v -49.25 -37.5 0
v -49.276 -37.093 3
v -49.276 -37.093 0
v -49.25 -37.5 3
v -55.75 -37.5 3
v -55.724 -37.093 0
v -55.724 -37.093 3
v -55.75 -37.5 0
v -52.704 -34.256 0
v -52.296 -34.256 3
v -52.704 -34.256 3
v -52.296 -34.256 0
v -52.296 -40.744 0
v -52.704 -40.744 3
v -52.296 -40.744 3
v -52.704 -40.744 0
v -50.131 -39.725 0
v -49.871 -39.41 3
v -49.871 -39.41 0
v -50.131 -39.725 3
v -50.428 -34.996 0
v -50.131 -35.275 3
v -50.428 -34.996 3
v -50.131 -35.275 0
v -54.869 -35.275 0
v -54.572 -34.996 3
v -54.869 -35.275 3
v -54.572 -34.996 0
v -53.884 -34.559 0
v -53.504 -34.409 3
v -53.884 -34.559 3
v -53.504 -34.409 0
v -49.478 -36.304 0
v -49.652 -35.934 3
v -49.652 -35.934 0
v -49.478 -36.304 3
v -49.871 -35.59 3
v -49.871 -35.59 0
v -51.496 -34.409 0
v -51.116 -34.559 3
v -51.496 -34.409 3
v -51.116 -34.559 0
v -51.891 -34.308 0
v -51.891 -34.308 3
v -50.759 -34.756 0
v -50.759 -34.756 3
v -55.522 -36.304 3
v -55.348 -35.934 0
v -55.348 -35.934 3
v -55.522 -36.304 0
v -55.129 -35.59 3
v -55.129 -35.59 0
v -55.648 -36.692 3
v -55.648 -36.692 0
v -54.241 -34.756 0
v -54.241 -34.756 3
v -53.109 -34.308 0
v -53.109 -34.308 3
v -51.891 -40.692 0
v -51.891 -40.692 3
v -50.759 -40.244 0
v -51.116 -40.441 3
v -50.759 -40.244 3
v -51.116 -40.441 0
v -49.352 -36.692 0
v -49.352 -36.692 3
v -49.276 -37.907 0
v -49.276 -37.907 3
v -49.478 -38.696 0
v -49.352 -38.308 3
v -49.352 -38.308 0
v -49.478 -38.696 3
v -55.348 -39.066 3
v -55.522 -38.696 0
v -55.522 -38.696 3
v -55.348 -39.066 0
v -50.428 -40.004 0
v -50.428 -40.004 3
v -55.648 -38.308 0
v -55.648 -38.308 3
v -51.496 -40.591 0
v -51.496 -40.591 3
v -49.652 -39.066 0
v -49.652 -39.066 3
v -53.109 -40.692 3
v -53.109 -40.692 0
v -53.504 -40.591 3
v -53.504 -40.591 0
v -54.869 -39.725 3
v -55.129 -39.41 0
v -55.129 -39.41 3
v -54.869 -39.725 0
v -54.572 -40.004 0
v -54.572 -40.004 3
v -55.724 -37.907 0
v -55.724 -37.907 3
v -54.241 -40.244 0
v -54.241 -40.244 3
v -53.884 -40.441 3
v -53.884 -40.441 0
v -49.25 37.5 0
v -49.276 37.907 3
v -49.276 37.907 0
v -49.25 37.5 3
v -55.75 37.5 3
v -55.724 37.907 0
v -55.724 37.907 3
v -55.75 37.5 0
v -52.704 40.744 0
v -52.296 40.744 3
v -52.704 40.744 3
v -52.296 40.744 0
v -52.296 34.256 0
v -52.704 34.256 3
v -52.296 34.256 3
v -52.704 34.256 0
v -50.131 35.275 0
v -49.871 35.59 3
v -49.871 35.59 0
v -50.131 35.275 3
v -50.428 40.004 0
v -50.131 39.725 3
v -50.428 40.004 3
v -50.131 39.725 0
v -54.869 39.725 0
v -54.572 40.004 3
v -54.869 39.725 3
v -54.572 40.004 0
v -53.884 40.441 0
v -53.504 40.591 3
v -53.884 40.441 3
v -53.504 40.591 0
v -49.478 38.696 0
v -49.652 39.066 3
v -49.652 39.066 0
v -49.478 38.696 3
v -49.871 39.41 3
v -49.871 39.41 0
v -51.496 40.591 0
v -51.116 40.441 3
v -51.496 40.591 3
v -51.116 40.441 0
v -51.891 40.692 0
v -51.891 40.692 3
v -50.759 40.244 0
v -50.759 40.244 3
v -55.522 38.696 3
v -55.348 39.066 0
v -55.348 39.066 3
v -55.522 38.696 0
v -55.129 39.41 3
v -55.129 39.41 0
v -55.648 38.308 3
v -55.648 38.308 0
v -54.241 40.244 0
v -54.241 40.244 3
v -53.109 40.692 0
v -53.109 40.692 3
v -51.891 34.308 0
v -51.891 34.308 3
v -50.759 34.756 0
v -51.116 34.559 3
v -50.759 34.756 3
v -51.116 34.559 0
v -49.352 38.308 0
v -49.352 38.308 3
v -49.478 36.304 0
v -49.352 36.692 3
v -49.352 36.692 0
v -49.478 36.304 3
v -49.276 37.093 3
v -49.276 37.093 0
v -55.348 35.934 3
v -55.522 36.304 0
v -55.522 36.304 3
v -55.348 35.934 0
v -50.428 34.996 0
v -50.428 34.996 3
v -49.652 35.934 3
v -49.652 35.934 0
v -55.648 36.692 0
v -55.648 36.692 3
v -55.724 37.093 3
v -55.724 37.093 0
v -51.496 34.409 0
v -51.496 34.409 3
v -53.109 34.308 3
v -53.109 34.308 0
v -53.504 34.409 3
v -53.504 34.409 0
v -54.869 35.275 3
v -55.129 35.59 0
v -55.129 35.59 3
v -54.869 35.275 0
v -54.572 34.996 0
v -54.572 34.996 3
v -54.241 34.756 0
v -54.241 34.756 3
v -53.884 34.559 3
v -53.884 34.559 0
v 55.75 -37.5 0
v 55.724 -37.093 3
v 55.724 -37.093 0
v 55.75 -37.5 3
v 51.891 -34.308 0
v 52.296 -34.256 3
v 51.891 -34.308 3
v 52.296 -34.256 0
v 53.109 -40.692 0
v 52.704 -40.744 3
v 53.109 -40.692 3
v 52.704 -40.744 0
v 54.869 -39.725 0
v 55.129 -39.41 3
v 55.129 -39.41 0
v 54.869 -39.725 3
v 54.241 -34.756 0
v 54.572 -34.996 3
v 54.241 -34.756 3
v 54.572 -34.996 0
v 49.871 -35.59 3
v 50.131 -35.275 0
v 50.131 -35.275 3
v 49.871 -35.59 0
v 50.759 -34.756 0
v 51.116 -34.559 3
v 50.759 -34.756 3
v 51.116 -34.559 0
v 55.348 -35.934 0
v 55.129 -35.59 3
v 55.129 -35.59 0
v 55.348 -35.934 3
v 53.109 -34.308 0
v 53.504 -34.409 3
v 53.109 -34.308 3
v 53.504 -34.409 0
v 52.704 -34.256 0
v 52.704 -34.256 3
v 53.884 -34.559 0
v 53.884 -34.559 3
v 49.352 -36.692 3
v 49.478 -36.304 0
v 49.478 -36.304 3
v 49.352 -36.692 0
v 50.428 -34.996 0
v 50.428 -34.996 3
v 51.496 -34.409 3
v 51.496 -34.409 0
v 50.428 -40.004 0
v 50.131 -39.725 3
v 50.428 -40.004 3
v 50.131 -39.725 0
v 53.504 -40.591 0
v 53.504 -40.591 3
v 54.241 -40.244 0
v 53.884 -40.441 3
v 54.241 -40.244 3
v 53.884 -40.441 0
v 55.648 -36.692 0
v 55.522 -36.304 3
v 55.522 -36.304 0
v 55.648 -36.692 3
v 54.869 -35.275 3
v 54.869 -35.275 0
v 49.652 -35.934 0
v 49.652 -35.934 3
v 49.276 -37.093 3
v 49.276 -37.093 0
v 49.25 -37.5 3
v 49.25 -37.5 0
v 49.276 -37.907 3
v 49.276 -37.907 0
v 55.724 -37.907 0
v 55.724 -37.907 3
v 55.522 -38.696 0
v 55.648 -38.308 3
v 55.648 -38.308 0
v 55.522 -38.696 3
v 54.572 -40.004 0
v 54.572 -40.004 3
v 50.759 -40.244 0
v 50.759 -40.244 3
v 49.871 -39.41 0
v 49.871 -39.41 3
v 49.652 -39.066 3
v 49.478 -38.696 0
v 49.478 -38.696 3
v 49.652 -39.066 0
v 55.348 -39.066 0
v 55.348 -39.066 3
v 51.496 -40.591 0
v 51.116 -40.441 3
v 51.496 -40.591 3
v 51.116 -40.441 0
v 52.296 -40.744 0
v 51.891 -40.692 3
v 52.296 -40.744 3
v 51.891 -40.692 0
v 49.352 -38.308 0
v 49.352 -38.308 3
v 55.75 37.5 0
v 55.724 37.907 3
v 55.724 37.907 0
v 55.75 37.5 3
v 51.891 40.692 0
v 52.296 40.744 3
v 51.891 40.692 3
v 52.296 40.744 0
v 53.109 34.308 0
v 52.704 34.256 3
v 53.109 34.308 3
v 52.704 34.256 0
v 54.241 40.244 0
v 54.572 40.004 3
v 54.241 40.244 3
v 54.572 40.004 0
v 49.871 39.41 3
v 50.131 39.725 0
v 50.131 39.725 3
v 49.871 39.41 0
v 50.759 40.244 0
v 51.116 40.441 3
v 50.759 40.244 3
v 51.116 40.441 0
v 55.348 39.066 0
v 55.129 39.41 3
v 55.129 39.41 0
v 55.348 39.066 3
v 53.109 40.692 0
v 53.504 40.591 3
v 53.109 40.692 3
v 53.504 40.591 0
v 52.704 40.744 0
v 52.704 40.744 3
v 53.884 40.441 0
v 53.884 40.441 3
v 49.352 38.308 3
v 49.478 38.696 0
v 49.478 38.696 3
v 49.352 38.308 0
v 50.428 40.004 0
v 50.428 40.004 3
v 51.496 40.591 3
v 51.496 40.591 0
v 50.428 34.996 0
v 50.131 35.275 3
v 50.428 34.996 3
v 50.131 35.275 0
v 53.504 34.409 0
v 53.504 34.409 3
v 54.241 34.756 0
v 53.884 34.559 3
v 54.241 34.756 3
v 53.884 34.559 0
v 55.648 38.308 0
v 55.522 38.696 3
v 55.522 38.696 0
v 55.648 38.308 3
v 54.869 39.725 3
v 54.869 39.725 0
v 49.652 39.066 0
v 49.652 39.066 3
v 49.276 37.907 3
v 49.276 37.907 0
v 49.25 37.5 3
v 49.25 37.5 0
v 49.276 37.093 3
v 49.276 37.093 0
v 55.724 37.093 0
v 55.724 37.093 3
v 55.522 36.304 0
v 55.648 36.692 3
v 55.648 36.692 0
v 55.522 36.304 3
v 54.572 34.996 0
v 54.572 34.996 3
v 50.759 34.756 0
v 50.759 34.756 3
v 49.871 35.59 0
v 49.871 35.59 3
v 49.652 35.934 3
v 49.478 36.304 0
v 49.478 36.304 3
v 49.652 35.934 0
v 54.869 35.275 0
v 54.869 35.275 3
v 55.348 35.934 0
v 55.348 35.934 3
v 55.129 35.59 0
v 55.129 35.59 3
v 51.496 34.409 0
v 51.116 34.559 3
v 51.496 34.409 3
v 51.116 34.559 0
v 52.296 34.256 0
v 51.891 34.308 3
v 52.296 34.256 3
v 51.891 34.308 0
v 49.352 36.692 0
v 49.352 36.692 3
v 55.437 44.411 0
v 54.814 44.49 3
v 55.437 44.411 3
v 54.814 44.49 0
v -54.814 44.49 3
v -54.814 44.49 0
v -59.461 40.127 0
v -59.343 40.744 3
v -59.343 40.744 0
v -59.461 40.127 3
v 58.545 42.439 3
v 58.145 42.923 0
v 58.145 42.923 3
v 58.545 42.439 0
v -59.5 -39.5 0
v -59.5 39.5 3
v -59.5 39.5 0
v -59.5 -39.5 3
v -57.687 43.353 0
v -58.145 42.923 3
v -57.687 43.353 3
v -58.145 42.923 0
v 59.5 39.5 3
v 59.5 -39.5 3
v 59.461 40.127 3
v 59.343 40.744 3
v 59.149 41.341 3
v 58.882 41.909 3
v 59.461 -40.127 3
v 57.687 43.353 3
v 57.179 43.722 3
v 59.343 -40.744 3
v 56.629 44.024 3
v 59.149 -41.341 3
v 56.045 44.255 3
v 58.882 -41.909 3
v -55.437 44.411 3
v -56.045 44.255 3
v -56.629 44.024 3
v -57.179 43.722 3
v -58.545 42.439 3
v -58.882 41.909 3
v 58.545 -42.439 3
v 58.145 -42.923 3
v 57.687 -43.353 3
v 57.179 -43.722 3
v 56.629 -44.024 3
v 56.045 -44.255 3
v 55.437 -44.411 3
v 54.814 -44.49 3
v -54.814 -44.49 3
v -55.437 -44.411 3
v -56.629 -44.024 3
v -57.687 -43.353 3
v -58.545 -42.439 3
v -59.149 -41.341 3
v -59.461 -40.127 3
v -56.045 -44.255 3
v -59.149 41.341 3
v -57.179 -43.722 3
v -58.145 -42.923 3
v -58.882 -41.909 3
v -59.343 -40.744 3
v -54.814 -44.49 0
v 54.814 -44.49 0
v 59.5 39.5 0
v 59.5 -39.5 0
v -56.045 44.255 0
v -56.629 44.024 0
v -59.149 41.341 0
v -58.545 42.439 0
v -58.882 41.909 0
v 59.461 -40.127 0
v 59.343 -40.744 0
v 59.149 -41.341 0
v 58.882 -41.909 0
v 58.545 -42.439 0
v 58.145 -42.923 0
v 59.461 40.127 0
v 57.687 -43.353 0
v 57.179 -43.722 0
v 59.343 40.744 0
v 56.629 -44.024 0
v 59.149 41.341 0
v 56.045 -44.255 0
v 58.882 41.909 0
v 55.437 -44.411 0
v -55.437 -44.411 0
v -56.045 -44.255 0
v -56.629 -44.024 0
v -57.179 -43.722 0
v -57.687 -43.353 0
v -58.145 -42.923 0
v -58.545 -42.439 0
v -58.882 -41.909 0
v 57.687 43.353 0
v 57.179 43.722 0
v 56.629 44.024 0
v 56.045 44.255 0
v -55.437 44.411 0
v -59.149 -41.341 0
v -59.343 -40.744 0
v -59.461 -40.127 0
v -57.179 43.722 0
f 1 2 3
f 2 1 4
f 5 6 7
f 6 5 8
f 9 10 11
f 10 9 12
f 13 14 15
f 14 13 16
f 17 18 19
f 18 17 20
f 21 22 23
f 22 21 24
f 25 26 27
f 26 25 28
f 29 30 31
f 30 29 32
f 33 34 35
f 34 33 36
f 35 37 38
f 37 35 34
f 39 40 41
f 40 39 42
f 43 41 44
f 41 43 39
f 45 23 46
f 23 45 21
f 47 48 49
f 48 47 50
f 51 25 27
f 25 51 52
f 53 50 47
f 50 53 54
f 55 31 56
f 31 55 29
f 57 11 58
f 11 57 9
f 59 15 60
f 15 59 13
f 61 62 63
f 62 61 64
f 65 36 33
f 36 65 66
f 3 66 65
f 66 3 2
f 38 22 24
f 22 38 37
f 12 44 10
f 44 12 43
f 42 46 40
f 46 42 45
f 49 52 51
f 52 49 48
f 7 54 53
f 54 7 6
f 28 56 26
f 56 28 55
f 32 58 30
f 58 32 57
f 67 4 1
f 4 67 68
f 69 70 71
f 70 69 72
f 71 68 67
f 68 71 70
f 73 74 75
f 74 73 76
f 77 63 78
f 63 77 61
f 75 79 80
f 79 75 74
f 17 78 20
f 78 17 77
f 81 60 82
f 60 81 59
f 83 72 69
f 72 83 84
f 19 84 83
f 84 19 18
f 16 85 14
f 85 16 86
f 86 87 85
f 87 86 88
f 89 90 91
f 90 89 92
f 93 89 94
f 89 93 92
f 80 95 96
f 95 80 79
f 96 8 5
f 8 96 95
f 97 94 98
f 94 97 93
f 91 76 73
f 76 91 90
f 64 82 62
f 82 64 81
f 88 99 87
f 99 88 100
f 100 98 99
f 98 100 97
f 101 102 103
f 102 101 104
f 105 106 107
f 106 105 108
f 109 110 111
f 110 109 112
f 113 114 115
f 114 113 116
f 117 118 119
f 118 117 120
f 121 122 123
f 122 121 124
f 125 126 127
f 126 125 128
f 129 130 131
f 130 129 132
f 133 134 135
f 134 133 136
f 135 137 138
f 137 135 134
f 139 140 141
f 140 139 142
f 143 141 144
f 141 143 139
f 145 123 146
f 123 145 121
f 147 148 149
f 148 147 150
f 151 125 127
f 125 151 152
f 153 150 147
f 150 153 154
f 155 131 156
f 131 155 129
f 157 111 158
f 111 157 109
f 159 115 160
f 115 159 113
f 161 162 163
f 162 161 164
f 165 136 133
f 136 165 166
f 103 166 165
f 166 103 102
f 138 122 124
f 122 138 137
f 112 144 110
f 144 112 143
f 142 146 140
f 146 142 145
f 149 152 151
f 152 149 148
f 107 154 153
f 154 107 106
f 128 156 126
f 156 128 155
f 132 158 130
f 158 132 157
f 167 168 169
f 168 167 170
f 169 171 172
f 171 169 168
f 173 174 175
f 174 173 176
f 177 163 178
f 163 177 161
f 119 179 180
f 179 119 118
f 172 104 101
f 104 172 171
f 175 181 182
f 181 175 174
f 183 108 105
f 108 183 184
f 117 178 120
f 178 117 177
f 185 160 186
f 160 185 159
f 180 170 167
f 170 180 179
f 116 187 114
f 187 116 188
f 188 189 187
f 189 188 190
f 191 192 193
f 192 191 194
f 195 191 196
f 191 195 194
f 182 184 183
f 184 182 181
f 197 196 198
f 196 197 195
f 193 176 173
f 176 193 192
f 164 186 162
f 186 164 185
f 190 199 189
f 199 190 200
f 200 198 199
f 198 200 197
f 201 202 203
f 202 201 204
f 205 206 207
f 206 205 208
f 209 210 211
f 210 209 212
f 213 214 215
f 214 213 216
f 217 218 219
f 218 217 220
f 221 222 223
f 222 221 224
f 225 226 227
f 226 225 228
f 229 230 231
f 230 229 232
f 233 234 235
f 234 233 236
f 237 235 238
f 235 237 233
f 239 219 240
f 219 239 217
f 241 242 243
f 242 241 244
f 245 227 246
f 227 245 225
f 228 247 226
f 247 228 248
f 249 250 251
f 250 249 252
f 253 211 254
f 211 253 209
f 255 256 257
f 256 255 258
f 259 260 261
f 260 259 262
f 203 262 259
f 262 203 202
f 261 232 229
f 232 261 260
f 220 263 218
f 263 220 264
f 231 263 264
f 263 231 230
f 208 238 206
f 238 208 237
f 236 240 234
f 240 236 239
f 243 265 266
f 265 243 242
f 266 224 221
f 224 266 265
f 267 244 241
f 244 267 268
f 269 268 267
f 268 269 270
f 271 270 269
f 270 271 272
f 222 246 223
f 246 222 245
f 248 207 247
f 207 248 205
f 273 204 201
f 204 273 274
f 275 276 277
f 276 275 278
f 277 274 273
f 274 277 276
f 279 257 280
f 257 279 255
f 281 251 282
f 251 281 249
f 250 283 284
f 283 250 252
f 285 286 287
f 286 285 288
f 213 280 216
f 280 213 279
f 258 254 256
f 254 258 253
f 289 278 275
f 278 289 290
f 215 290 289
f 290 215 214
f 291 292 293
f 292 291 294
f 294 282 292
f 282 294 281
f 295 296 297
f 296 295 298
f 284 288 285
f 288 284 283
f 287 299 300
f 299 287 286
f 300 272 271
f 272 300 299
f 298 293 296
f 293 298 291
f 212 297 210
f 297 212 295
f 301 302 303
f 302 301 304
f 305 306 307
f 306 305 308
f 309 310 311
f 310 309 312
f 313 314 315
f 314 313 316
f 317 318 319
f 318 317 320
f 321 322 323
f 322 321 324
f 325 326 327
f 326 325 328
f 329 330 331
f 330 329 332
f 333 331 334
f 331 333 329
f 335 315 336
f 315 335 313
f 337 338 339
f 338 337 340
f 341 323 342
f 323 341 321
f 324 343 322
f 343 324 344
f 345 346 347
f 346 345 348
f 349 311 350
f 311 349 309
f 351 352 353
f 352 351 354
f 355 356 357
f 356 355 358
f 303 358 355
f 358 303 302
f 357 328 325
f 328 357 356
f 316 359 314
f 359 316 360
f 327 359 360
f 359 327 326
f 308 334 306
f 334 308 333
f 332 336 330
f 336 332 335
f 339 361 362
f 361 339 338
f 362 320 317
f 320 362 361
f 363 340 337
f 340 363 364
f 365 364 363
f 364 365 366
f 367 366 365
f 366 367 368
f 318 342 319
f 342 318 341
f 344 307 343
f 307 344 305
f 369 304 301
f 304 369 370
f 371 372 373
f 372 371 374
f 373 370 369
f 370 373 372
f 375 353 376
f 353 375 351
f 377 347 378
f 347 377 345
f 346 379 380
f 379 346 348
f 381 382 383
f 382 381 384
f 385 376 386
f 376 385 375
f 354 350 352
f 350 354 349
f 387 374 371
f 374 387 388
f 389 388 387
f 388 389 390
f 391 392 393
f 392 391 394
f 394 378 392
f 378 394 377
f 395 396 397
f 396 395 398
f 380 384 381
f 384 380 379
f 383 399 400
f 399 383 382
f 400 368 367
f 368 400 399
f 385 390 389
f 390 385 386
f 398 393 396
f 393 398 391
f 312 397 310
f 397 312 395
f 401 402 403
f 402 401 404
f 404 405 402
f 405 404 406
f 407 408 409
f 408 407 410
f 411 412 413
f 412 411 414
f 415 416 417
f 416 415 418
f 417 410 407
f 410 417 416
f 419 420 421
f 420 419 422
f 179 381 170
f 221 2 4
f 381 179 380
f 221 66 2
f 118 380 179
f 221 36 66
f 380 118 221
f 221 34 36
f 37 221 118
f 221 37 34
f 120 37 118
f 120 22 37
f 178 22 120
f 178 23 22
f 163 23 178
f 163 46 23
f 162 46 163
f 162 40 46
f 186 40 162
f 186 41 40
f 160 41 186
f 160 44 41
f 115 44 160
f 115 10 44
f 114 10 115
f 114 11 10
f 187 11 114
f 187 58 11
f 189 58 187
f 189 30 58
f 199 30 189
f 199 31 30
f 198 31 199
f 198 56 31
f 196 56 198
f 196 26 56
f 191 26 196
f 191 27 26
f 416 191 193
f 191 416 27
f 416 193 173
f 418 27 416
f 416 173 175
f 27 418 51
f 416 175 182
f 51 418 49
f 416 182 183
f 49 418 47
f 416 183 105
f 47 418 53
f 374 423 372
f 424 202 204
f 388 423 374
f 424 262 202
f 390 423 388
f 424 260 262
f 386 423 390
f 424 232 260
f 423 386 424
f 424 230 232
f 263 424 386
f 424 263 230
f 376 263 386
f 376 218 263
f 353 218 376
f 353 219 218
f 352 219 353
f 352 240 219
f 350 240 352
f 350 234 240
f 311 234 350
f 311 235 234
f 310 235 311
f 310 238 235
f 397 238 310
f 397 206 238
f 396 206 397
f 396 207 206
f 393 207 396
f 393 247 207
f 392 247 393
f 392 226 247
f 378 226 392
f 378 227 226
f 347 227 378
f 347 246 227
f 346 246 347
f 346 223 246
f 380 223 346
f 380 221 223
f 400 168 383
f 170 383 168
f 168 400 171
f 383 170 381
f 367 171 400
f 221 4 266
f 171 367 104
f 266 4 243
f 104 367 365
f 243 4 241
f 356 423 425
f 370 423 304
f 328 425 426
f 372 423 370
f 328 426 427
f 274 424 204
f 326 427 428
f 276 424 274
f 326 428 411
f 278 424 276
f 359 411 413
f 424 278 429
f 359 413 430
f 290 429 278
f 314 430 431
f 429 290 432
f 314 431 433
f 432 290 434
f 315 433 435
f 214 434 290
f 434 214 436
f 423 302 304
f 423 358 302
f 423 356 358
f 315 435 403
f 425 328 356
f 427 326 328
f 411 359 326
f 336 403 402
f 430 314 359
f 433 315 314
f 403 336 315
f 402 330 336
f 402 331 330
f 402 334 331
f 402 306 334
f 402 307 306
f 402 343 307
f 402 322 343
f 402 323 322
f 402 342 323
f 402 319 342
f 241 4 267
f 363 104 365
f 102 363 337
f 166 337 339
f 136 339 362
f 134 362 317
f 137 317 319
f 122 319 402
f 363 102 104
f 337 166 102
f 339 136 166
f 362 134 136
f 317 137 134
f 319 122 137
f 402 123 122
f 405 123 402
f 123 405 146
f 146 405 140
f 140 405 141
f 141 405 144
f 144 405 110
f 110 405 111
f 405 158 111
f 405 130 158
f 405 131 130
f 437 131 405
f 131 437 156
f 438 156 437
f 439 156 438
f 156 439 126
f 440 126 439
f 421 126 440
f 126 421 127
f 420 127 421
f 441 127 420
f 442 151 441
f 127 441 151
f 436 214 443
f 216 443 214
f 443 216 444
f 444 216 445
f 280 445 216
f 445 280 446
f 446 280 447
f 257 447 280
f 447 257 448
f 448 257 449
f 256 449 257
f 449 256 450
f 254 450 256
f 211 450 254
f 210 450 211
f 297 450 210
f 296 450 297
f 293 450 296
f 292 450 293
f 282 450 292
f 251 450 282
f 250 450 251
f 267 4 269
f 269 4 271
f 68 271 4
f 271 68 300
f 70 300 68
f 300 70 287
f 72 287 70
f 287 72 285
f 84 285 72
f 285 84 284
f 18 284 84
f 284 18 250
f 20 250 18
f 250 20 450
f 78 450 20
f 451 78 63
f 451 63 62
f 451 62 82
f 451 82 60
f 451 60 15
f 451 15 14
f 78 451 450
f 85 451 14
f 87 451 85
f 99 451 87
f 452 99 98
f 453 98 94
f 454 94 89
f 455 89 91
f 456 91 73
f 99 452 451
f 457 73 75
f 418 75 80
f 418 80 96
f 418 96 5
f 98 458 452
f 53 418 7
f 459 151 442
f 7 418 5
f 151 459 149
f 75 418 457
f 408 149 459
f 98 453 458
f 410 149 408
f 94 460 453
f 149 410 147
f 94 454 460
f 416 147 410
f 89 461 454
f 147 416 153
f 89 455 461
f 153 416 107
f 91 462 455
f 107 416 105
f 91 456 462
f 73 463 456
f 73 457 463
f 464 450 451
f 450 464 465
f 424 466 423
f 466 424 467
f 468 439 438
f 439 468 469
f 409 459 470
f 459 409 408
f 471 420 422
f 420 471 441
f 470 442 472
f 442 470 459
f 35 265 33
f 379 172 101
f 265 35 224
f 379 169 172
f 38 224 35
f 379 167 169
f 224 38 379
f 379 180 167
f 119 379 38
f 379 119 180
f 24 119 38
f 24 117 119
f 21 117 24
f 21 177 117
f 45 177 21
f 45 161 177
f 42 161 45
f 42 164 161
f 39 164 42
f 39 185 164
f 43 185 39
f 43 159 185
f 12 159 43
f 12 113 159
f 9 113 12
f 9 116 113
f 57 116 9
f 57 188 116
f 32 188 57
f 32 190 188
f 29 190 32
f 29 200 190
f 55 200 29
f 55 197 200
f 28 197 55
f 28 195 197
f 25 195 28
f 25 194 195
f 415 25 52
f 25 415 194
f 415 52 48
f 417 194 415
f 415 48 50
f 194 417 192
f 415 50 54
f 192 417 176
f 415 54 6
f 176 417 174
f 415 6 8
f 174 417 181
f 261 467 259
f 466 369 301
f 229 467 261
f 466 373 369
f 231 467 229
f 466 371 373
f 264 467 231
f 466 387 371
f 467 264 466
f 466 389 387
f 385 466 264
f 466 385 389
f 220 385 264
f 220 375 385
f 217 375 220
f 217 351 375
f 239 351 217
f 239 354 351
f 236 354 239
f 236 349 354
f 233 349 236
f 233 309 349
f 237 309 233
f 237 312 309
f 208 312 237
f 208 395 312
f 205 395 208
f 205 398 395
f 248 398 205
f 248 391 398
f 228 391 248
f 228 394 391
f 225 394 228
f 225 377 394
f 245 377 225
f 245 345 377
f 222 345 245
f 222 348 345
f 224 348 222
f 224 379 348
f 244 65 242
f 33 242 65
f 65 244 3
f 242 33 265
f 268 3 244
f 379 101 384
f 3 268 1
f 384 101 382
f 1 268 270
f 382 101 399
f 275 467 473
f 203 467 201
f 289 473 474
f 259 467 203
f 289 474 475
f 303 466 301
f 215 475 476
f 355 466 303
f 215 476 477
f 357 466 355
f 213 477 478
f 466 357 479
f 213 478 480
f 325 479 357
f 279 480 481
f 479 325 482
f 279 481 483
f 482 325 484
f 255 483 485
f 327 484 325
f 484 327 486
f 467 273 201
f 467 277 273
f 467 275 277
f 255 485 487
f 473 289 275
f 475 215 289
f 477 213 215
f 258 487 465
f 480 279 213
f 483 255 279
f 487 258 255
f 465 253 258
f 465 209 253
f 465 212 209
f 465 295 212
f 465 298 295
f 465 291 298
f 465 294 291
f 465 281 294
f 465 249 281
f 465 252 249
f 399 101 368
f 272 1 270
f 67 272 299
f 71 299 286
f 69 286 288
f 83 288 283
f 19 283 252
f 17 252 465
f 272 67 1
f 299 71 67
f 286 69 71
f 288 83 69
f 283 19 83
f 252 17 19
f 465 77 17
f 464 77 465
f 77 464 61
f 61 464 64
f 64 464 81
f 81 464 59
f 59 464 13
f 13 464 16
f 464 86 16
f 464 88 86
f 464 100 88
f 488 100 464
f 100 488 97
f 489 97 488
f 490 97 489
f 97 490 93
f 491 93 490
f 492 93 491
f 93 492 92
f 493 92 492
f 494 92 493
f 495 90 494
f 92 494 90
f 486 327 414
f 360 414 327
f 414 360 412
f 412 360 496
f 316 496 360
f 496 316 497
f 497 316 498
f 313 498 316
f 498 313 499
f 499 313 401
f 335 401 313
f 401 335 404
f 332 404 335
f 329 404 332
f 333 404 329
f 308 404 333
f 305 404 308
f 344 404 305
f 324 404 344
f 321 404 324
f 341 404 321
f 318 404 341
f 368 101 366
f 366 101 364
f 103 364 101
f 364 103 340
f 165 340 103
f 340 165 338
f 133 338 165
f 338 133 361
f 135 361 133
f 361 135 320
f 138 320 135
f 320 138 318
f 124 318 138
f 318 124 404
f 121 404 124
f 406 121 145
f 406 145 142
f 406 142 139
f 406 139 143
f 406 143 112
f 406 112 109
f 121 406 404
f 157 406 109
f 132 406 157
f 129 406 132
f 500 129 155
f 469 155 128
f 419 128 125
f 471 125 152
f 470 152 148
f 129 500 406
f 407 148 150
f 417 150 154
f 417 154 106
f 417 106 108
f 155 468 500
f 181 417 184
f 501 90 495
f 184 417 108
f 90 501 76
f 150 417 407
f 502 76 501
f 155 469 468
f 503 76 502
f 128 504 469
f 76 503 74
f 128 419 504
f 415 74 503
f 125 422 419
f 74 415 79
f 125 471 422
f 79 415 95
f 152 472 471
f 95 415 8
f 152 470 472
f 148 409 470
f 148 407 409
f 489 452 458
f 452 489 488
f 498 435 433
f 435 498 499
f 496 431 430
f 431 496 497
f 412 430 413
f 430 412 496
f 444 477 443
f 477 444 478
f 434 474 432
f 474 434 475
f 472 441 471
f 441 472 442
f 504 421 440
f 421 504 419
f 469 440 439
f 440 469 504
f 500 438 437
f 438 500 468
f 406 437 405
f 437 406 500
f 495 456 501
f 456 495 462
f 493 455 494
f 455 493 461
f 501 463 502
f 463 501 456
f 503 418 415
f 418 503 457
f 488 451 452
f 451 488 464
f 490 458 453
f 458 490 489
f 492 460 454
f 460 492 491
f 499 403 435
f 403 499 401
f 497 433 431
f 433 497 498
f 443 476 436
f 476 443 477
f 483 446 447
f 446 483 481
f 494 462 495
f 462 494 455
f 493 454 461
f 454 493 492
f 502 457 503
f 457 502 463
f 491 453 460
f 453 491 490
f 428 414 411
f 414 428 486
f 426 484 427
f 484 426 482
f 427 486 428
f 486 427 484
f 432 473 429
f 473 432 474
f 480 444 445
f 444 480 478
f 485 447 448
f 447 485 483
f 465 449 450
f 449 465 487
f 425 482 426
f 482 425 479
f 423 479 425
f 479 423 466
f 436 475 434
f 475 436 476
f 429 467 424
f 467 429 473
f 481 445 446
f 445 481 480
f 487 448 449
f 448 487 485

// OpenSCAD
$fn = 50;


difference() {
	union() {
		hull() {
			translate(v = [-54.5000000000, 39.5000000000, 0]) {
				cylinder(h = 3, r = 5);
			}
			translate(v = [54.5000000000, 39.5000000000, 0]) {
				cylinder(h = 3, r = 5);
			}
			translate(v = [-54.5000000000, -39.5000000000, 0]) {
				cylinder(h = 3, r = 5);
			}
			translate(v = [54.5000000000, -39.5000000000, 0]) {
				cylinder(h = 3, r = 5);
			}
		}
	}
	union() {
		translate(v = [-52.5000000000, -37.5000000000, -100.0000000000]) {
			cylinder(h = 200, r = 3.2500000000);
		}
		translate(v = [-52.5000000000, 37.5000000000, -100.0000000000]) {
			cylinder(h = 200, r = 3.2500000000);
		}
		translate(v = [52.5000000000, -37.5000000000, -100.0000000000]) {
			cylinder(h = 200, r = 3.2500000000);
		}
		translate(v = [52.5000000000, 37.5000000000, -100.0000000000]) {
			cylinder(h = 200, r = 3.2500000000);
		}
	}
}
